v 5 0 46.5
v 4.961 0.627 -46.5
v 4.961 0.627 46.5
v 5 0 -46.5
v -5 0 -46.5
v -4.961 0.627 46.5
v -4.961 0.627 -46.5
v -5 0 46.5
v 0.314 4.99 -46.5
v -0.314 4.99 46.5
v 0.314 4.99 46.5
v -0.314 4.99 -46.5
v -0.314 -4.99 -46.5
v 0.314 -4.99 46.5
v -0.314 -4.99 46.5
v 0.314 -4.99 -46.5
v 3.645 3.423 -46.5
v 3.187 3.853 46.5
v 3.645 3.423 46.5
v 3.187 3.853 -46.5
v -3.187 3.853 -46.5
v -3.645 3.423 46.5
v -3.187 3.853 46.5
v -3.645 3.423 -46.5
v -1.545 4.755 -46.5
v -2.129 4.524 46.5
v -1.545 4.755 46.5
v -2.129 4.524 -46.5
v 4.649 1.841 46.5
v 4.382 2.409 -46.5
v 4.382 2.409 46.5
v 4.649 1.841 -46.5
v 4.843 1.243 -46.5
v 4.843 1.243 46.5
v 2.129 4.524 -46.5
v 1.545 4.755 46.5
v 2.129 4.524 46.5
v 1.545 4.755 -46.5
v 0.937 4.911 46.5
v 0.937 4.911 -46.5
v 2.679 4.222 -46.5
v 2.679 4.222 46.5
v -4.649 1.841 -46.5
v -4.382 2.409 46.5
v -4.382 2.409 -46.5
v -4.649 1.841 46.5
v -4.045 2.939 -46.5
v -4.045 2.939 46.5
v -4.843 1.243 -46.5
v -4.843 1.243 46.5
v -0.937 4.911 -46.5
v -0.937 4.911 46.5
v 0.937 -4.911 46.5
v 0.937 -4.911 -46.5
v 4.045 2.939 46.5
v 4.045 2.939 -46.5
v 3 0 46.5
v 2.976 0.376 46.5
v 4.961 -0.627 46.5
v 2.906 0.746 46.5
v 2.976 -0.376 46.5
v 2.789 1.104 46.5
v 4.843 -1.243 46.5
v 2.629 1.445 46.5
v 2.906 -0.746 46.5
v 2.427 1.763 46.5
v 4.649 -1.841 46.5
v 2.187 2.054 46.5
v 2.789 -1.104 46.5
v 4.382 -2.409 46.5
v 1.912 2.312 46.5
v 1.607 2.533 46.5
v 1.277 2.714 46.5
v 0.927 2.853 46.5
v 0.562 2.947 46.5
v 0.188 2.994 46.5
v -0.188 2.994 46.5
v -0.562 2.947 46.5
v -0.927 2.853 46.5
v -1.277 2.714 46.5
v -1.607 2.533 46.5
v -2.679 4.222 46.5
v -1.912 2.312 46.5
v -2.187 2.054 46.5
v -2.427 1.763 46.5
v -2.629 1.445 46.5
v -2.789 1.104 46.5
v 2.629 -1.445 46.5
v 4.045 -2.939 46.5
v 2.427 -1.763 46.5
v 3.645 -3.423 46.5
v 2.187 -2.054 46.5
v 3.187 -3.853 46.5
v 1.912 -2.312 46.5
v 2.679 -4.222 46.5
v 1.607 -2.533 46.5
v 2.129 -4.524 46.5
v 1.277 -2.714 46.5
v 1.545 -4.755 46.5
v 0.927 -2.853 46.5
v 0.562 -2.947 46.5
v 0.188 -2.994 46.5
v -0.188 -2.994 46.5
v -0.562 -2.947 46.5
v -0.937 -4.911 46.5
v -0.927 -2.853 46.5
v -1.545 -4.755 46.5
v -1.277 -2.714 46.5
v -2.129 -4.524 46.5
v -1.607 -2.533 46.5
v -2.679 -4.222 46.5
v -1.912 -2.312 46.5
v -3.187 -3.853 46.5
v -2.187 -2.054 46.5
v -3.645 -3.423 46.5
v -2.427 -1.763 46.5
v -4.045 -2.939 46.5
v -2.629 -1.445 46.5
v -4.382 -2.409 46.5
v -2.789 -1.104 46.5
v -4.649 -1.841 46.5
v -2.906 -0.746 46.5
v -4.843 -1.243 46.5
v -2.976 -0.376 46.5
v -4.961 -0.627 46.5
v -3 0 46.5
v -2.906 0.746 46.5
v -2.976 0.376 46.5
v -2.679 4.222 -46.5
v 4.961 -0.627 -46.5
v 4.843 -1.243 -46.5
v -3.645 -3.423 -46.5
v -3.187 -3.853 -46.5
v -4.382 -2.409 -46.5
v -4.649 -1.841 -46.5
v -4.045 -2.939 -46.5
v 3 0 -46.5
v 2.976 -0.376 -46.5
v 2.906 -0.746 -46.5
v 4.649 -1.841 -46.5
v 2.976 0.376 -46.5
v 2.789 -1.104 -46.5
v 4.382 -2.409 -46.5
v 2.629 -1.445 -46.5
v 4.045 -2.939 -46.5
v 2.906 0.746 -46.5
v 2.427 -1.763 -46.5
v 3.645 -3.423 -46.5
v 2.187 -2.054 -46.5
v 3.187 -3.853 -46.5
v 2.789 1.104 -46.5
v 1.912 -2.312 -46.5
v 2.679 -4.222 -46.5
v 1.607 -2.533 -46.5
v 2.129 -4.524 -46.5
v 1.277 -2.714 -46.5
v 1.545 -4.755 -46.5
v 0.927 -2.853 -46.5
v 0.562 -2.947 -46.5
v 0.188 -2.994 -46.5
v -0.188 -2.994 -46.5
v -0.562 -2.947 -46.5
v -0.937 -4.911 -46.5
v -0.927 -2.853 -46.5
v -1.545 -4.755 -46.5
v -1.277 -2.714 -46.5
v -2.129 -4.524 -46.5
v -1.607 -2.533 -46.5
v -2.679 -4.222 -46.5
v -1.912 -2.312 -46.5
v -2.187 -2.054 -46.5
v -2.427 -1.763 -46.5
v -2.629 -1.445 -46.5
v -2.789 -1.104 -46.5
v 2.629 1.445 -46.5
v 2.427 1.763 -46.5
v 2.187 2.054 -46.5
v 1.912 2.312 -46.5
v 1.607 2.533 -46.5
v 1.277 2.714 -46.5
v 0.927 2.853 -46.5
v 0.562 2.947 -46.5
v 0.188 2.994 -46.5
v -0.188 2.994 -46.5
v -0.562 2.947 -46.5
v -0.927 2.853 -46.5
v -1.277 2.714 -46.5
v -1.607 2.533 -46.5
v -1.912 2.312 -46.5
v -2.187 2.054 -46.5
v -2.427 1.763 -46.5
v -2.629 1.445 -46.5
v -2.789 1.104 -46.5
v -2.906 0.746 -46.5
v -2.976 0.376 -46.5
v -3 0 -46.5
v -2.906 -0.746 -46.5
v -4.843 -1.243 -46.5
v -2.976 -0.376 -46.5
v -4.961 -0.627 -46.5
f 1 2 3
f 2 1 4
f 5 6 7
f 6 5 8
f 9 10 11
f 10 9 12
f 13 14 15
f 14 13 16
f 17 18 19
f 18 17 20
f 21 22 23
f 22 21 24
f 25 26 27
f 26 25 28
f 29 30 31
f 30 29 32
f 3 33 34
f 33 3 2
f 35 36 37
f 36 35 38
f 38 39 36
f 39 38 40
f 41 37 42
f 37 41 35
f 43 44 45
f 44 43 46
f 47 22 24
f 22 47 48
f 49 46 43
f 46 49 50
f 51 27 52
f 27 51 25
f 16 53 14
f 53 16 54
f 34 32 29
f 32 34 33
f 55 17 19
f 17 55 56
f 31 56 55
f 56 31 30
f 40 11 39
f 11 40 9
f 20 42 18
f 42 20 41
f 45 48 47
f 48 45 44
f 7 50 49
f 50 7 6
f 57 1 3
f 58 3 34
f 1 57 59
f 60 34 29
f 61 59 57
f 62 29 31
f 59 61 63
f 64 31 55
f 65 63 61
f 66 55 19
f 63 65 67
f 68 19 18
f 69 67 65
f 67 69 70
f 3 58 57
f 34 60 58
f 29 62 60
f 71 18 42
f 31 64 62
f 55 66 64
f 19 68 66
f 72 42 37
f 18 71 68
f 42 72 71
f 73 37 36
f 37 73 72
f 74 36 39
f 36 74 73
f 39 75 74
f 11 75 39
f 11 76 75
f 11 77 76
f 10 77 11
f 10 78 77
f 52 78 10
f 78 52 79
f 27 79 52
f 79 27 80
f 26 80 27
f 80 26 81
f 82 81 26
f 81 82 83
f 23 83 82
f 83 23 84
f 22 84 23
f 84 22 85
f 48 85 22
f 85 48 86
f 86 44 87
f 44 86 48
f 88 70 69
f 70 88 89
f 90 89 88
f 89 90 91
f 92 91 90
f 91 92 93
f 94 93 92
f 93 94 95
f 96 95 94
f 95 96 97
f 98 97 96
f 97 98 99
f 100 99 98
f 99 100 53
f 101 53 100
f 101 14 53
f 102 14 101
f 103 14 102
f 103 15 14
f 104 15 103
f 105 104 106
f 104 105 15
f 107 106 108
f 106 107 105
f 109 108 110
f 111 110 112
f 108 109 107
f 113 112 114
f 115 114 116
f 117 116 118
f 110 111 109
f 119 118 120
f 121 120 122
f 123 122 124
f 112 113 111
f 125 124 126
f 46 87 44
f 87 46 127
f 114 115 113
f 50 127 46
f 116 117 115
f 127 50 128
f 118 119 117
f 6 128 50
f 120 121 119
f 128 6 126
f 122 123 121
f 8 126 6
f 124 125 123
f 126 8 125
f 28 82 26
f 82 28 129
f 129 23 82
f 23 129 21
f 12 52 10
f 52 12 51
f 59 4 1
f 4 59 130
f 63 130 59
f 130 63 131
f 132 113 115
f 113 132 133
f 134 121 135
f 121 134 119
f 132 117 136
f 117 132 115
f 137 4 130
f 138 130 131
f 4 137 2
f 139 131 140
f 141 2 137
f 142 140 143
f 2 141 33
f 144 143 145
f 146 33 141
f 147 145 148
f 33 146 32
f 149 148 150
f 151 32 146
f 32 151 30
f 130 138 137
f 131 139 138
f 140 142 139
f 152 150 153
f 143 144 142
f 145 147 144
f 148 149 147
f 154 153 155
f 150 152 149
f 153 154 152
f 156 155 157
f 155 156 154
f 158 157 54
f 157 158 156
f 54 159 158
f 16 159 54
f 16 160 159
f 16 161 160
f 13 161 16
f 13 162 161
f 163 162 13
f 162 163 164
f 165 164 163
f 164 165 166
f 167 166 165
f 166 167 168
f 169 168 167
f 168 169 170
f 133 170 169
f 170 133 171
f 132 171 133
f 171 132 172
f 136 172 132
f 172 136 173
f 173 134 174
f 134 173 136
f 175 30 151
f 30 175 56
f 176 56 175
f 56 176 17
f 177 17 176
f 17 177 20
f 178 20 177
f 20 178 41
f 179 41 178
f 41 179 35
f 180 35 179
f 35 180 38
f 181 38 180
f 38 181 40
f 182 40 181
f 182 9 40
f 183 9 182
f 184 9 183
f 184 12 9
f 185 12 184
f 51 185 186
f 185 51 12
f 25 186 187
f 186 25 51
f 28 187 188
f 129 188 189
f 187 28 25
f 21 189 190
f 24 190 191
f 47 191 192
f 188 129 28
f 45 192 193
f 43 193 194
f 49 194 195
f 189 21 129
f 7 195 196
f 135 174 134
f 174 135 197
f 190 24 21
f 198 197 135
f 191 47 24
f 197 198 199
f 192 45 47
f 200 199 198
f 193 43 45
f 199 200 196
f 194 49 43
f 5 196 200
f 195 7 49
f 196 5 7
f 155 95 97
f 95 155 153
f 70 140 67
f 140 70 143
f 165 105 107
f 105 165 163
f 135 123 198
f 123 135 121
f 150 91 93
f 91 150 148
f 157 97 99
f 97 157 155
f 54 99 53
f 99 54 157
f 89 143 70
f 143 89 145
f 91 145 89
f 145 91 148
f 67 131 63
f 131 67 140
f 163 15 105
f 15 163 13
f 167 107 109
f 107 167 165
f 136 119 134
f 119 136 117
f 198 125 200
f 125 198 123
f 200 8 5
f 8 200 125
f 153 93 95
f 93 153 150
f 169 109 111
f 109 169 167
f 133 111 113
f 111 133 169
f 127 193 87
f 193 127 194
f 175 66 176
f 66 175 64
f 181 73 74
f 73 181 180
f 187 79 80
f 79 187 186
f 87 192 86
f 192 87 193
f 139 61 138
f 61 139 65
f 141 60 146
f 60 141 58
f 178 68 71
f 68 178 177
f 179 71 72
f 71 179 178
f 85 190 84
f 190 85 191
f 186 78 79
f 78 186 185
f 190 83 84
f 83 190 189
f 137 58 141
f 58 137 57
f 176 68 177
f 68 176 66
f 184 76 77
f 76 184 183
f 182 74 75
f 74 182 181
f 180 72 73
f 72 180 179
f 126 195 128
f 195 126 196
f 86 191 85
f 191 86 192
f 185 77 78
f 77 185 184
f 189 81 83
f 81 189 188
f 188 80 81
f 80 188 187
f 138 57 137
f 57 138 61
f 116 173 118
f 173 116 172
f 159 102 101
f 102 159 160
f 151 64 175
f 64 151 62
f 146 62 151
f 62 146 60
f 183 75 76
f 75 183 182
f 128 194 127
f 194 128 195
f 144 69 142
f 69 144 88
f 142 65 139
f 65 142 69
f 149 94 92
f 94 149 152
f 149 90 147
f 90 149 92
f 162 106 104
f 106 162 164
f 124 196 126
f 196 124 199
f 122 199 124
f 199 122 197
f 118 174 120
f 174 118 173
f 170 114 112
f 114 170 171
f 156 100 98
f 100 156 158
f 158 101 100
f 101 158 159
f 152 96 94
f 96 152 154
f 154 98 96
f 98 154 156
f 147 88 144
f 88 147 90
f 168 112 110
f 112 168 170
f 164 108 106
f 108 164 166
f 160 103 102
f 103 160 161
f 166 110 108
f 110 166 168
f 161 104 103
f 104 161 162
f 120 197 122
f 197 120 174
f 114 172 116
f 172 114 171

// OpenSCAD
$fn = 50;


difference() {
	union() {
		translate(v = [0, 0, -46.5000000000]) {
			cylinder(h = 93, r = 5.0000000000);
		}
	}
	union() {
		translate(v = [0, 0, -100.0000000000]) {
			cylinder(h = 200, r = 3);
		}
	}
}
